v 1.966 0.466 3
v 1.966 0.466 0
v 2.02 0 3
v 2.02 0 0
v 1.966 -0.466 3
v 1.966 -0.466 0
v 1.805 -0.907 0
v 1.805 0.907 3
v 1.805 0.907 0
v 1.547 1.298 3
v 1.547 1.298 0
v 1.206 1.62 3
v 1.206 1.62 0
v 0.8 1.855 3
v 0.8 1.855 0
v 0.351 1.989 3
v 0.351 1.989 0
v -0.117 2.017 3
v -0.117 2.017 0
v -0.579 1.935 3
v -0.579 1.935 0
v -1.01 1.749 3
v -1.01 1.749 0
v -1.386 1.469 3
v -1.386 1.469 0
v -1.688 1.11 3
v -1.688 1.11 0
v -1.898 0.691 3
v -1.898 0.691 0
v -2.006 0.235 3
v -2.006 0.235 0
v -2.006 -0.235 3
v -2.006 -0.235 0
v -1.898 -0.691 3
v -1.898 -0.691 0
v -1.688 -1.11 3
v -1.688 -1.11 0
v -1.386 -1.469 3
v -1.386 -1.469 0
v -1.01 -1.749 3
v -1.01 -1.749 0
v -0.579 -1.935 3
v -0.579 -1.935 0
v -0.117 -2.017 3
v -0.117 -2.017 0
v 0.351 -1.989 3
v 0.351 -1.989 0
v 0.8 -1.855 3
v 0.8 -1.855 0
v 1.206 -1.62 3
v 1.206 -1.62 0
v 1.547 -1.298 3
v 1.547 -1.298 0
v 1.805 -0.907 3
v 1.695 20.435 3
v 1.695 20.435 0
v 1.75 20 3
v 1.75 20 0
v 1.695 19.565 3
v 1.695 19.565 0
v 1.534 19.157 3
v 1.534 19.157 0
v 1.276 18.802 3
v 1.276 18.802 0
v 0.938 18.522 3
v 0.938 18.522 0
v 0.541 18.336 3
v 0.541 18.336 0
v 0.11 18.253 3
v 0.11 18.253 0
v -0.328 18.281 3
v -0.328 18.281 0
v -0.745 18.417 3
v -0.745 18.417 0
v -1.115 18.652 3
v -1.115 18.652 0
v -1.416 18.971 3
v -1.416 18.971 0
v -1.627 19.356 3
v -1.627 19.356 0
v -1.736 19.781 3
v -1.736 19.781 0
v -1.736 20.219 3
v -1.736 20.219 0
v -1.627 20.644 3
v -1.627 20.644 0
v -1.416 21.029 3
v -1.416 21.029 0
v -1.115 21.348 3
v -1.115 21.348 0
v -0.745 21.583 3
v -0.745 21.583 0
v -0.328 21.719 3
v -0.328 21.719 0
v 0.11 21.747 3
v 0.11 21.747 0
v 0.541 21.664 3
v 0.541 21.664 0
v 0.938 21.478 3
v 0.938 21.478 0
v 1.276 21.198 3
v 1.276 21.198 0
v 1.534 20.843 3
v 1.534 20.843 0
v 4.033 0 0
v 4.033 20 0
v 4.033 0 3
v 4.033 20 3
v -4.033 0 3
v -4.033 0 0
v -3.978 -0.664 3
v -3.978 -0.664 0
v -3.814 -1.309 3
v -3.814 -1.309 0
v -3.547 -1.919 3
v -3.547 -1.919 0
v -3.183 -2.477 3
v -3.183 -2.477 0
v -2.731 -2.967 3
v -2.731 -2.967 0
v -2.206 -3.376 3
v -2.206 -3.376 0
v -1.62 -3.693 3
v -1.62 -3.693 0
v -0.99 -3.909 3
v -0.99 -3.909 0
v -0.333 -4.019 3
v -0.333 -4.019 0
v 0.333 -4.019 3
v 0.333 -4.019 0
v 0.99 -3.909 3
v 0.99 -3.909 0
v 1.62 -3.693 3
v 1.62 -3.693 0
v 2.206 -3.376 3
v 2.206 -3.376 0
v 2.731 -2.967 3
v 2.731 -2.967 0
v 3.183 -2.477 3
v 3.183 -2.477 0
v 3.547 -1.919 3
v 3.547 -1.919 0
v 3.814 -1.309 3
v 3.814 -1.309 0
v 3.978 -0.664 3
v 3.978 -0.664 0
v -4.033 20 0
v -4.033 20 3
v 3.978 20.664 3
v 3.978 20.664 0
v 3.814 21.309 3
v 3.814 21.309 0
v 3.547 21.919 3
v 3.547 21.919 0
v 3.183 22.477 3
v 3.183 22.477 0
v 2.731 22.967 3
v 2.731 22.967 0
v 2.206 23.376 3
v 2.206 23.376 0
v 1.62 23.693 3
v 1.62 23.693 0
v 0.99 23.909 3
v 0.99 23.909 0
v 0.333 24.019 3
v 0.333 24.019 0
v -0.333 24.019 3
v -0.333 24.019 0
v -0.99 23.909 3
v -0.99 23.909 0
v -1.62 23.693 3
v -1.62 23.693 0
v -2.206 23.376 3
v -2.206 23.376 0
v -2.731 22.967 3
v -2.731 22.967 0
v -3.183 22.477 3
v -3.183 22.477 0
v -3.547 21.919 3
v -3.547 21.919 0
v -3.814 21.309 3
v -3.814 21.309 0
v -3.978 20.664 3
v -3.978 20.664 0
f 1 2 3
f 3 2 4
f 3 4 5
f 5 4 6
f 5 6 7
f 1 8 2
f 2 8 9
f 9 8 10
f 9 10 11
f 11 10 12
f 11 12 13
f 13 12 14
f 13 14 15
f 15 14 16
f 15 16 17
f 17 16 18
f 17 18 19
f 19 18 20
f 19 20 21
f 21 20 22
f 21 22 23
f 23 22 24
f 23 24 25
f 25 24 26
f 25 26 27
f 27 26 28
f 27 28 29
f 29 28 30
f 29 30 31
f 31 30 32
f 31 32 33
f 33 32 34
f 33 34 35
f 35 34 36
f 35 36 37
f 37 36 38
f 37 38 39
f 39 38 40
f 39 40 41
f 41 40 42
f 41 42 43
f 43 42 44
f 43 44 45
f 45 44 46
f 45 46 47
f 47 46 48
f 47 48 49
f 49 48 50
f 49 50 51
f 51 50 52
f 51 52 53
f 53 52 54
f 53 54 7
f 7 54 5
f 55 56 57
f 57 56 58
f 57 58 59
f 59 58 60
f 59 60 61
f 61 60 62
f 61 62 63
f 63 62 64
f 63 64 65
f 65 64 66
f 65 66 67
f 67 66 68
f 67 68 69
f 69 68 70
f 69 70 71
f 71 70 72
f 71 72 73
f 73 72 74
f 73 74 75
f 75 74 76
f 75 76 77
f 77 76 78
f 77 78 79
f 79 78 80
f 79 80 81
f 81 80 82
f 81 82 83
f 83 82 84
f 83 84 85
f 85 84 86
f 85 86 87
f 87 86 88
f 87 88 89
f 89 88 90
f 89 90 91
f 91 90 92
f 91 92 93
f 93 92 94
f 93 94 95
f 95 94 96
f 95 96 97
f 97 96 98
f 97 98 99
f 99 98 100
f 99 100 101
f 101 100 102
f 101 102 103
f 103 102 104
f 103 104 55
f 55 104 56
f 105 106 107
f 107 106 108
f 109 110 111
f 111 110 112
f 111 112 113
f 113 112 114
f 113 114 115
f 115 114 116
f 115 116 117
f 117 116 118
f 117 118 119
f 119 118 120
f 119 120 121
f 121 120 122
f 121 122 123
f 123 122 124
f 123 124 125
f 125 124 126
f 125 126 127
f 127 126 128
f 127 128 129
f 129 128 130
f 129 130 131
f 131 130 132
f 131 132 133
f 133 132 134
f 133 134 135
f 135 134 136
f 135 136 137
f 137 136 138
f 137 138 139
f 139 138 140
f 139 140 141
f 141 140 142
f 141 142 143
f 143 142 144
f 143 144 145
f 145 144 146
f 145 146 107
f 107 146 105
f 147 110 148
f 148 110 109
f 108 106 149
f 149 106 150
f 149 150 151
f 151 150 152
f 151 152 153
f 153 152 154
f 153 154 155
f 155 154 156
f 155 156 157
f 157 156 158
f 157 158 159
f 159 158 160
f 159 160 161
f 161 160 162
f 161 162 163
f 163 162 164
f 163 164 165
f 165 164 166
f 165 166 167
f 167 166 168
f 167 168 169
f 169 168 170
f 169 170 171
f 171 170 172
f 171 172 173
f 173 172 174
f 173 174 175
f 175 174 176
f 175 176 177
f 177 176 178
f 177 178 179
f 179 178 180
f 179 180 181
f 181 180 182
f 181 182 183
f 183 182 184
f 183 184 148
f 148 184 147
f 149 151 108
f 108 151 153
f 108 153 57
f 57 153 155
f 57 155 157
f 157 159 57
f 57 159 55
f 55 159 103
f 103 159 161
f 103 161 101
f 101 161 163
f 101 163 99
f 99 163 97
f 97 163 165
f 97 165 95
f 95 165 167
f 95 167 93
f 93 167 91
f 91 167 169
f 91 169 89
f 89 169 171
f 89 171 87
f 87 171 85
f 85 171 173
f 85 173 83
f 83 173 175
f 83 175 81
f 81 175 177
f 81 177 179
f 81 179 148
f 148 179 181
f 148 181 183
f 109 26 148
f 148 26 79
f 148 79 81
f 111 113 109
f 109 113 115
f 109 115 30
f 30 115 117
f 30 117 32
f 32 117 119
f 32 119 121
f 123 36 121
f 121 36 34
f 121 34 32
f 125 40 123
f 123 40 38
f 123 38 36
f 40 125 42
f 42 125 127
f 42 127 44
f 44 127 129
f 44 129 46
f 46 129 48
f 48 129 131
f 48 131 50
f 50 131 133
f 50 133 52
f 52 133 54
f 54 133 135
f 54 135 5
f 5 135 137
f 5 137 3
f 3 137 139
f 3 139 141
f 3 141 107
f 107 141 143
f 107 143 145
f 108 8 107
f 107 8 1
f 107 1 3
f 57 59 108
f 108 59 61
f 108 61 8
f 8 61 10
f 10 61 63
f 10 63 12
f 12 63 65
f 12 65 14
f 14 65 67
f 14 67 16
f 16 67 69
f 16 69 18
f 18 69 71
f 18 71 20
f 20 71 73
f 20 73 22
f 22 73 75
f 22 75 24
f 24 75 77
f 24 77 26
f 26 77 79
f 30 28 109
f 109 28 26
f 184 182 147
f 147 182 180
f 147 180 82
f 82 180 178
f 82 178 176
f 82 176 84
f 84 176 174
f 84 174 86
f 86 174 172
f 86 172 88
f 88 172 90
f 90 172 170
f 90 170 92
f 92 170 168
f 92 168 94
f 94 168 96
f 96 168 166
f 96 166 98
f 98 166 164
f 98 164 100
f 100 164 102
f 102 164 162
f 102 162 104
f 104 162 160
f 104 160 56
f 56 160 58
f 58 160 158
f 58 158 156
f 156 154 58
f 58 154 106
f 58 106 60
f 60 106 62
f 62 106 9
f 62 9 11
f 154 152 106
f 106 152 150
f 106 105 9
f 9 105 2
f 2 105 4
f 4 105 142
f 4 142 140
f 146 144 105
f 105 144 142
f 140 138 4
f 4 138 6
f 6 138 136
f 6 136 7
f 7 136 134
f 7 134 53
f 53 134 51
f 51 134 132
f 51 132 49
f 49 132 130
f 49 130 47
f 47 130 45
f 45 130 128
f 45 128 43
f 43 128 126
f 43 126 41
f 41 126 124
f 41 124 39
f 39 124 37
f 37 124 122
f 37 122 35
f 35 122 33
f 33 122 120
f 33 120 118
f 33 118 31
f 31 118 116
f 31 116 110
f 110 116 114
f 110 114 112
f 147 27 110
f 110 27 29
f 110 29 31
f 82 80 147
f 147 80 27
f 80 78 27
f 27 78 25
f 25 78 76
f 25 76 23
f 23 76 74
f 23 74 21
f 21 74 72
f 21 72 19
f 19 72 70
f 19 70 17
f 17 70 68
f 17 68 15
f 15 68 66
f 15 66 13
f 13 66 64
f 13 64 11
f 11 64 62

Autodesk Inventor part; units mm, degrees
ref_plane "YZ Plane" through (0, 0, 0) normal (1, 0, 0) x (0, 1, 0)
ref_plane "XZ Plane" through (0, 0, 0) normal (0, 1, 0) x (-1, 0, 0)
ref_plane "XY Plane" through (0, 0, 0) normal (0, 0, 1) x (1, 0, 0)
sketch "Sketch1" plane through (0, 0, 0) normal (0, 0, 1) x (1, 0, 0)
  line L0 (0, 0) -> (0, 20) construction
  circle A0 centre (0, 0) radius 2.02
  circle A1 centre (0, 20) radius 1.75
  line L1 (0, 0) -> (0, 20) construction
  line L2 (4.0329, 0) -> (4.0329, 20)
  line L3 (-4.0329, 20) -> (-4.0329, 0)
  arc A2 (-4.0329, 0) -> (4.0329, 0) centre (0, 0) ccw
  arc A3 (4.0329, 20) -> (-4.0329, 20) centre (0, 20) ccw
  point P0 (0, 10)
  point P1 (0, 10)
  dimension "d0" = 20
  dimension "d2" = 4.04
  dimension "d3" = 3.5
extrude "Extrusion2" add sketch "Sketch1" along normal blind 3
properties part number "RedKangoroo_001_bar1ipt"
